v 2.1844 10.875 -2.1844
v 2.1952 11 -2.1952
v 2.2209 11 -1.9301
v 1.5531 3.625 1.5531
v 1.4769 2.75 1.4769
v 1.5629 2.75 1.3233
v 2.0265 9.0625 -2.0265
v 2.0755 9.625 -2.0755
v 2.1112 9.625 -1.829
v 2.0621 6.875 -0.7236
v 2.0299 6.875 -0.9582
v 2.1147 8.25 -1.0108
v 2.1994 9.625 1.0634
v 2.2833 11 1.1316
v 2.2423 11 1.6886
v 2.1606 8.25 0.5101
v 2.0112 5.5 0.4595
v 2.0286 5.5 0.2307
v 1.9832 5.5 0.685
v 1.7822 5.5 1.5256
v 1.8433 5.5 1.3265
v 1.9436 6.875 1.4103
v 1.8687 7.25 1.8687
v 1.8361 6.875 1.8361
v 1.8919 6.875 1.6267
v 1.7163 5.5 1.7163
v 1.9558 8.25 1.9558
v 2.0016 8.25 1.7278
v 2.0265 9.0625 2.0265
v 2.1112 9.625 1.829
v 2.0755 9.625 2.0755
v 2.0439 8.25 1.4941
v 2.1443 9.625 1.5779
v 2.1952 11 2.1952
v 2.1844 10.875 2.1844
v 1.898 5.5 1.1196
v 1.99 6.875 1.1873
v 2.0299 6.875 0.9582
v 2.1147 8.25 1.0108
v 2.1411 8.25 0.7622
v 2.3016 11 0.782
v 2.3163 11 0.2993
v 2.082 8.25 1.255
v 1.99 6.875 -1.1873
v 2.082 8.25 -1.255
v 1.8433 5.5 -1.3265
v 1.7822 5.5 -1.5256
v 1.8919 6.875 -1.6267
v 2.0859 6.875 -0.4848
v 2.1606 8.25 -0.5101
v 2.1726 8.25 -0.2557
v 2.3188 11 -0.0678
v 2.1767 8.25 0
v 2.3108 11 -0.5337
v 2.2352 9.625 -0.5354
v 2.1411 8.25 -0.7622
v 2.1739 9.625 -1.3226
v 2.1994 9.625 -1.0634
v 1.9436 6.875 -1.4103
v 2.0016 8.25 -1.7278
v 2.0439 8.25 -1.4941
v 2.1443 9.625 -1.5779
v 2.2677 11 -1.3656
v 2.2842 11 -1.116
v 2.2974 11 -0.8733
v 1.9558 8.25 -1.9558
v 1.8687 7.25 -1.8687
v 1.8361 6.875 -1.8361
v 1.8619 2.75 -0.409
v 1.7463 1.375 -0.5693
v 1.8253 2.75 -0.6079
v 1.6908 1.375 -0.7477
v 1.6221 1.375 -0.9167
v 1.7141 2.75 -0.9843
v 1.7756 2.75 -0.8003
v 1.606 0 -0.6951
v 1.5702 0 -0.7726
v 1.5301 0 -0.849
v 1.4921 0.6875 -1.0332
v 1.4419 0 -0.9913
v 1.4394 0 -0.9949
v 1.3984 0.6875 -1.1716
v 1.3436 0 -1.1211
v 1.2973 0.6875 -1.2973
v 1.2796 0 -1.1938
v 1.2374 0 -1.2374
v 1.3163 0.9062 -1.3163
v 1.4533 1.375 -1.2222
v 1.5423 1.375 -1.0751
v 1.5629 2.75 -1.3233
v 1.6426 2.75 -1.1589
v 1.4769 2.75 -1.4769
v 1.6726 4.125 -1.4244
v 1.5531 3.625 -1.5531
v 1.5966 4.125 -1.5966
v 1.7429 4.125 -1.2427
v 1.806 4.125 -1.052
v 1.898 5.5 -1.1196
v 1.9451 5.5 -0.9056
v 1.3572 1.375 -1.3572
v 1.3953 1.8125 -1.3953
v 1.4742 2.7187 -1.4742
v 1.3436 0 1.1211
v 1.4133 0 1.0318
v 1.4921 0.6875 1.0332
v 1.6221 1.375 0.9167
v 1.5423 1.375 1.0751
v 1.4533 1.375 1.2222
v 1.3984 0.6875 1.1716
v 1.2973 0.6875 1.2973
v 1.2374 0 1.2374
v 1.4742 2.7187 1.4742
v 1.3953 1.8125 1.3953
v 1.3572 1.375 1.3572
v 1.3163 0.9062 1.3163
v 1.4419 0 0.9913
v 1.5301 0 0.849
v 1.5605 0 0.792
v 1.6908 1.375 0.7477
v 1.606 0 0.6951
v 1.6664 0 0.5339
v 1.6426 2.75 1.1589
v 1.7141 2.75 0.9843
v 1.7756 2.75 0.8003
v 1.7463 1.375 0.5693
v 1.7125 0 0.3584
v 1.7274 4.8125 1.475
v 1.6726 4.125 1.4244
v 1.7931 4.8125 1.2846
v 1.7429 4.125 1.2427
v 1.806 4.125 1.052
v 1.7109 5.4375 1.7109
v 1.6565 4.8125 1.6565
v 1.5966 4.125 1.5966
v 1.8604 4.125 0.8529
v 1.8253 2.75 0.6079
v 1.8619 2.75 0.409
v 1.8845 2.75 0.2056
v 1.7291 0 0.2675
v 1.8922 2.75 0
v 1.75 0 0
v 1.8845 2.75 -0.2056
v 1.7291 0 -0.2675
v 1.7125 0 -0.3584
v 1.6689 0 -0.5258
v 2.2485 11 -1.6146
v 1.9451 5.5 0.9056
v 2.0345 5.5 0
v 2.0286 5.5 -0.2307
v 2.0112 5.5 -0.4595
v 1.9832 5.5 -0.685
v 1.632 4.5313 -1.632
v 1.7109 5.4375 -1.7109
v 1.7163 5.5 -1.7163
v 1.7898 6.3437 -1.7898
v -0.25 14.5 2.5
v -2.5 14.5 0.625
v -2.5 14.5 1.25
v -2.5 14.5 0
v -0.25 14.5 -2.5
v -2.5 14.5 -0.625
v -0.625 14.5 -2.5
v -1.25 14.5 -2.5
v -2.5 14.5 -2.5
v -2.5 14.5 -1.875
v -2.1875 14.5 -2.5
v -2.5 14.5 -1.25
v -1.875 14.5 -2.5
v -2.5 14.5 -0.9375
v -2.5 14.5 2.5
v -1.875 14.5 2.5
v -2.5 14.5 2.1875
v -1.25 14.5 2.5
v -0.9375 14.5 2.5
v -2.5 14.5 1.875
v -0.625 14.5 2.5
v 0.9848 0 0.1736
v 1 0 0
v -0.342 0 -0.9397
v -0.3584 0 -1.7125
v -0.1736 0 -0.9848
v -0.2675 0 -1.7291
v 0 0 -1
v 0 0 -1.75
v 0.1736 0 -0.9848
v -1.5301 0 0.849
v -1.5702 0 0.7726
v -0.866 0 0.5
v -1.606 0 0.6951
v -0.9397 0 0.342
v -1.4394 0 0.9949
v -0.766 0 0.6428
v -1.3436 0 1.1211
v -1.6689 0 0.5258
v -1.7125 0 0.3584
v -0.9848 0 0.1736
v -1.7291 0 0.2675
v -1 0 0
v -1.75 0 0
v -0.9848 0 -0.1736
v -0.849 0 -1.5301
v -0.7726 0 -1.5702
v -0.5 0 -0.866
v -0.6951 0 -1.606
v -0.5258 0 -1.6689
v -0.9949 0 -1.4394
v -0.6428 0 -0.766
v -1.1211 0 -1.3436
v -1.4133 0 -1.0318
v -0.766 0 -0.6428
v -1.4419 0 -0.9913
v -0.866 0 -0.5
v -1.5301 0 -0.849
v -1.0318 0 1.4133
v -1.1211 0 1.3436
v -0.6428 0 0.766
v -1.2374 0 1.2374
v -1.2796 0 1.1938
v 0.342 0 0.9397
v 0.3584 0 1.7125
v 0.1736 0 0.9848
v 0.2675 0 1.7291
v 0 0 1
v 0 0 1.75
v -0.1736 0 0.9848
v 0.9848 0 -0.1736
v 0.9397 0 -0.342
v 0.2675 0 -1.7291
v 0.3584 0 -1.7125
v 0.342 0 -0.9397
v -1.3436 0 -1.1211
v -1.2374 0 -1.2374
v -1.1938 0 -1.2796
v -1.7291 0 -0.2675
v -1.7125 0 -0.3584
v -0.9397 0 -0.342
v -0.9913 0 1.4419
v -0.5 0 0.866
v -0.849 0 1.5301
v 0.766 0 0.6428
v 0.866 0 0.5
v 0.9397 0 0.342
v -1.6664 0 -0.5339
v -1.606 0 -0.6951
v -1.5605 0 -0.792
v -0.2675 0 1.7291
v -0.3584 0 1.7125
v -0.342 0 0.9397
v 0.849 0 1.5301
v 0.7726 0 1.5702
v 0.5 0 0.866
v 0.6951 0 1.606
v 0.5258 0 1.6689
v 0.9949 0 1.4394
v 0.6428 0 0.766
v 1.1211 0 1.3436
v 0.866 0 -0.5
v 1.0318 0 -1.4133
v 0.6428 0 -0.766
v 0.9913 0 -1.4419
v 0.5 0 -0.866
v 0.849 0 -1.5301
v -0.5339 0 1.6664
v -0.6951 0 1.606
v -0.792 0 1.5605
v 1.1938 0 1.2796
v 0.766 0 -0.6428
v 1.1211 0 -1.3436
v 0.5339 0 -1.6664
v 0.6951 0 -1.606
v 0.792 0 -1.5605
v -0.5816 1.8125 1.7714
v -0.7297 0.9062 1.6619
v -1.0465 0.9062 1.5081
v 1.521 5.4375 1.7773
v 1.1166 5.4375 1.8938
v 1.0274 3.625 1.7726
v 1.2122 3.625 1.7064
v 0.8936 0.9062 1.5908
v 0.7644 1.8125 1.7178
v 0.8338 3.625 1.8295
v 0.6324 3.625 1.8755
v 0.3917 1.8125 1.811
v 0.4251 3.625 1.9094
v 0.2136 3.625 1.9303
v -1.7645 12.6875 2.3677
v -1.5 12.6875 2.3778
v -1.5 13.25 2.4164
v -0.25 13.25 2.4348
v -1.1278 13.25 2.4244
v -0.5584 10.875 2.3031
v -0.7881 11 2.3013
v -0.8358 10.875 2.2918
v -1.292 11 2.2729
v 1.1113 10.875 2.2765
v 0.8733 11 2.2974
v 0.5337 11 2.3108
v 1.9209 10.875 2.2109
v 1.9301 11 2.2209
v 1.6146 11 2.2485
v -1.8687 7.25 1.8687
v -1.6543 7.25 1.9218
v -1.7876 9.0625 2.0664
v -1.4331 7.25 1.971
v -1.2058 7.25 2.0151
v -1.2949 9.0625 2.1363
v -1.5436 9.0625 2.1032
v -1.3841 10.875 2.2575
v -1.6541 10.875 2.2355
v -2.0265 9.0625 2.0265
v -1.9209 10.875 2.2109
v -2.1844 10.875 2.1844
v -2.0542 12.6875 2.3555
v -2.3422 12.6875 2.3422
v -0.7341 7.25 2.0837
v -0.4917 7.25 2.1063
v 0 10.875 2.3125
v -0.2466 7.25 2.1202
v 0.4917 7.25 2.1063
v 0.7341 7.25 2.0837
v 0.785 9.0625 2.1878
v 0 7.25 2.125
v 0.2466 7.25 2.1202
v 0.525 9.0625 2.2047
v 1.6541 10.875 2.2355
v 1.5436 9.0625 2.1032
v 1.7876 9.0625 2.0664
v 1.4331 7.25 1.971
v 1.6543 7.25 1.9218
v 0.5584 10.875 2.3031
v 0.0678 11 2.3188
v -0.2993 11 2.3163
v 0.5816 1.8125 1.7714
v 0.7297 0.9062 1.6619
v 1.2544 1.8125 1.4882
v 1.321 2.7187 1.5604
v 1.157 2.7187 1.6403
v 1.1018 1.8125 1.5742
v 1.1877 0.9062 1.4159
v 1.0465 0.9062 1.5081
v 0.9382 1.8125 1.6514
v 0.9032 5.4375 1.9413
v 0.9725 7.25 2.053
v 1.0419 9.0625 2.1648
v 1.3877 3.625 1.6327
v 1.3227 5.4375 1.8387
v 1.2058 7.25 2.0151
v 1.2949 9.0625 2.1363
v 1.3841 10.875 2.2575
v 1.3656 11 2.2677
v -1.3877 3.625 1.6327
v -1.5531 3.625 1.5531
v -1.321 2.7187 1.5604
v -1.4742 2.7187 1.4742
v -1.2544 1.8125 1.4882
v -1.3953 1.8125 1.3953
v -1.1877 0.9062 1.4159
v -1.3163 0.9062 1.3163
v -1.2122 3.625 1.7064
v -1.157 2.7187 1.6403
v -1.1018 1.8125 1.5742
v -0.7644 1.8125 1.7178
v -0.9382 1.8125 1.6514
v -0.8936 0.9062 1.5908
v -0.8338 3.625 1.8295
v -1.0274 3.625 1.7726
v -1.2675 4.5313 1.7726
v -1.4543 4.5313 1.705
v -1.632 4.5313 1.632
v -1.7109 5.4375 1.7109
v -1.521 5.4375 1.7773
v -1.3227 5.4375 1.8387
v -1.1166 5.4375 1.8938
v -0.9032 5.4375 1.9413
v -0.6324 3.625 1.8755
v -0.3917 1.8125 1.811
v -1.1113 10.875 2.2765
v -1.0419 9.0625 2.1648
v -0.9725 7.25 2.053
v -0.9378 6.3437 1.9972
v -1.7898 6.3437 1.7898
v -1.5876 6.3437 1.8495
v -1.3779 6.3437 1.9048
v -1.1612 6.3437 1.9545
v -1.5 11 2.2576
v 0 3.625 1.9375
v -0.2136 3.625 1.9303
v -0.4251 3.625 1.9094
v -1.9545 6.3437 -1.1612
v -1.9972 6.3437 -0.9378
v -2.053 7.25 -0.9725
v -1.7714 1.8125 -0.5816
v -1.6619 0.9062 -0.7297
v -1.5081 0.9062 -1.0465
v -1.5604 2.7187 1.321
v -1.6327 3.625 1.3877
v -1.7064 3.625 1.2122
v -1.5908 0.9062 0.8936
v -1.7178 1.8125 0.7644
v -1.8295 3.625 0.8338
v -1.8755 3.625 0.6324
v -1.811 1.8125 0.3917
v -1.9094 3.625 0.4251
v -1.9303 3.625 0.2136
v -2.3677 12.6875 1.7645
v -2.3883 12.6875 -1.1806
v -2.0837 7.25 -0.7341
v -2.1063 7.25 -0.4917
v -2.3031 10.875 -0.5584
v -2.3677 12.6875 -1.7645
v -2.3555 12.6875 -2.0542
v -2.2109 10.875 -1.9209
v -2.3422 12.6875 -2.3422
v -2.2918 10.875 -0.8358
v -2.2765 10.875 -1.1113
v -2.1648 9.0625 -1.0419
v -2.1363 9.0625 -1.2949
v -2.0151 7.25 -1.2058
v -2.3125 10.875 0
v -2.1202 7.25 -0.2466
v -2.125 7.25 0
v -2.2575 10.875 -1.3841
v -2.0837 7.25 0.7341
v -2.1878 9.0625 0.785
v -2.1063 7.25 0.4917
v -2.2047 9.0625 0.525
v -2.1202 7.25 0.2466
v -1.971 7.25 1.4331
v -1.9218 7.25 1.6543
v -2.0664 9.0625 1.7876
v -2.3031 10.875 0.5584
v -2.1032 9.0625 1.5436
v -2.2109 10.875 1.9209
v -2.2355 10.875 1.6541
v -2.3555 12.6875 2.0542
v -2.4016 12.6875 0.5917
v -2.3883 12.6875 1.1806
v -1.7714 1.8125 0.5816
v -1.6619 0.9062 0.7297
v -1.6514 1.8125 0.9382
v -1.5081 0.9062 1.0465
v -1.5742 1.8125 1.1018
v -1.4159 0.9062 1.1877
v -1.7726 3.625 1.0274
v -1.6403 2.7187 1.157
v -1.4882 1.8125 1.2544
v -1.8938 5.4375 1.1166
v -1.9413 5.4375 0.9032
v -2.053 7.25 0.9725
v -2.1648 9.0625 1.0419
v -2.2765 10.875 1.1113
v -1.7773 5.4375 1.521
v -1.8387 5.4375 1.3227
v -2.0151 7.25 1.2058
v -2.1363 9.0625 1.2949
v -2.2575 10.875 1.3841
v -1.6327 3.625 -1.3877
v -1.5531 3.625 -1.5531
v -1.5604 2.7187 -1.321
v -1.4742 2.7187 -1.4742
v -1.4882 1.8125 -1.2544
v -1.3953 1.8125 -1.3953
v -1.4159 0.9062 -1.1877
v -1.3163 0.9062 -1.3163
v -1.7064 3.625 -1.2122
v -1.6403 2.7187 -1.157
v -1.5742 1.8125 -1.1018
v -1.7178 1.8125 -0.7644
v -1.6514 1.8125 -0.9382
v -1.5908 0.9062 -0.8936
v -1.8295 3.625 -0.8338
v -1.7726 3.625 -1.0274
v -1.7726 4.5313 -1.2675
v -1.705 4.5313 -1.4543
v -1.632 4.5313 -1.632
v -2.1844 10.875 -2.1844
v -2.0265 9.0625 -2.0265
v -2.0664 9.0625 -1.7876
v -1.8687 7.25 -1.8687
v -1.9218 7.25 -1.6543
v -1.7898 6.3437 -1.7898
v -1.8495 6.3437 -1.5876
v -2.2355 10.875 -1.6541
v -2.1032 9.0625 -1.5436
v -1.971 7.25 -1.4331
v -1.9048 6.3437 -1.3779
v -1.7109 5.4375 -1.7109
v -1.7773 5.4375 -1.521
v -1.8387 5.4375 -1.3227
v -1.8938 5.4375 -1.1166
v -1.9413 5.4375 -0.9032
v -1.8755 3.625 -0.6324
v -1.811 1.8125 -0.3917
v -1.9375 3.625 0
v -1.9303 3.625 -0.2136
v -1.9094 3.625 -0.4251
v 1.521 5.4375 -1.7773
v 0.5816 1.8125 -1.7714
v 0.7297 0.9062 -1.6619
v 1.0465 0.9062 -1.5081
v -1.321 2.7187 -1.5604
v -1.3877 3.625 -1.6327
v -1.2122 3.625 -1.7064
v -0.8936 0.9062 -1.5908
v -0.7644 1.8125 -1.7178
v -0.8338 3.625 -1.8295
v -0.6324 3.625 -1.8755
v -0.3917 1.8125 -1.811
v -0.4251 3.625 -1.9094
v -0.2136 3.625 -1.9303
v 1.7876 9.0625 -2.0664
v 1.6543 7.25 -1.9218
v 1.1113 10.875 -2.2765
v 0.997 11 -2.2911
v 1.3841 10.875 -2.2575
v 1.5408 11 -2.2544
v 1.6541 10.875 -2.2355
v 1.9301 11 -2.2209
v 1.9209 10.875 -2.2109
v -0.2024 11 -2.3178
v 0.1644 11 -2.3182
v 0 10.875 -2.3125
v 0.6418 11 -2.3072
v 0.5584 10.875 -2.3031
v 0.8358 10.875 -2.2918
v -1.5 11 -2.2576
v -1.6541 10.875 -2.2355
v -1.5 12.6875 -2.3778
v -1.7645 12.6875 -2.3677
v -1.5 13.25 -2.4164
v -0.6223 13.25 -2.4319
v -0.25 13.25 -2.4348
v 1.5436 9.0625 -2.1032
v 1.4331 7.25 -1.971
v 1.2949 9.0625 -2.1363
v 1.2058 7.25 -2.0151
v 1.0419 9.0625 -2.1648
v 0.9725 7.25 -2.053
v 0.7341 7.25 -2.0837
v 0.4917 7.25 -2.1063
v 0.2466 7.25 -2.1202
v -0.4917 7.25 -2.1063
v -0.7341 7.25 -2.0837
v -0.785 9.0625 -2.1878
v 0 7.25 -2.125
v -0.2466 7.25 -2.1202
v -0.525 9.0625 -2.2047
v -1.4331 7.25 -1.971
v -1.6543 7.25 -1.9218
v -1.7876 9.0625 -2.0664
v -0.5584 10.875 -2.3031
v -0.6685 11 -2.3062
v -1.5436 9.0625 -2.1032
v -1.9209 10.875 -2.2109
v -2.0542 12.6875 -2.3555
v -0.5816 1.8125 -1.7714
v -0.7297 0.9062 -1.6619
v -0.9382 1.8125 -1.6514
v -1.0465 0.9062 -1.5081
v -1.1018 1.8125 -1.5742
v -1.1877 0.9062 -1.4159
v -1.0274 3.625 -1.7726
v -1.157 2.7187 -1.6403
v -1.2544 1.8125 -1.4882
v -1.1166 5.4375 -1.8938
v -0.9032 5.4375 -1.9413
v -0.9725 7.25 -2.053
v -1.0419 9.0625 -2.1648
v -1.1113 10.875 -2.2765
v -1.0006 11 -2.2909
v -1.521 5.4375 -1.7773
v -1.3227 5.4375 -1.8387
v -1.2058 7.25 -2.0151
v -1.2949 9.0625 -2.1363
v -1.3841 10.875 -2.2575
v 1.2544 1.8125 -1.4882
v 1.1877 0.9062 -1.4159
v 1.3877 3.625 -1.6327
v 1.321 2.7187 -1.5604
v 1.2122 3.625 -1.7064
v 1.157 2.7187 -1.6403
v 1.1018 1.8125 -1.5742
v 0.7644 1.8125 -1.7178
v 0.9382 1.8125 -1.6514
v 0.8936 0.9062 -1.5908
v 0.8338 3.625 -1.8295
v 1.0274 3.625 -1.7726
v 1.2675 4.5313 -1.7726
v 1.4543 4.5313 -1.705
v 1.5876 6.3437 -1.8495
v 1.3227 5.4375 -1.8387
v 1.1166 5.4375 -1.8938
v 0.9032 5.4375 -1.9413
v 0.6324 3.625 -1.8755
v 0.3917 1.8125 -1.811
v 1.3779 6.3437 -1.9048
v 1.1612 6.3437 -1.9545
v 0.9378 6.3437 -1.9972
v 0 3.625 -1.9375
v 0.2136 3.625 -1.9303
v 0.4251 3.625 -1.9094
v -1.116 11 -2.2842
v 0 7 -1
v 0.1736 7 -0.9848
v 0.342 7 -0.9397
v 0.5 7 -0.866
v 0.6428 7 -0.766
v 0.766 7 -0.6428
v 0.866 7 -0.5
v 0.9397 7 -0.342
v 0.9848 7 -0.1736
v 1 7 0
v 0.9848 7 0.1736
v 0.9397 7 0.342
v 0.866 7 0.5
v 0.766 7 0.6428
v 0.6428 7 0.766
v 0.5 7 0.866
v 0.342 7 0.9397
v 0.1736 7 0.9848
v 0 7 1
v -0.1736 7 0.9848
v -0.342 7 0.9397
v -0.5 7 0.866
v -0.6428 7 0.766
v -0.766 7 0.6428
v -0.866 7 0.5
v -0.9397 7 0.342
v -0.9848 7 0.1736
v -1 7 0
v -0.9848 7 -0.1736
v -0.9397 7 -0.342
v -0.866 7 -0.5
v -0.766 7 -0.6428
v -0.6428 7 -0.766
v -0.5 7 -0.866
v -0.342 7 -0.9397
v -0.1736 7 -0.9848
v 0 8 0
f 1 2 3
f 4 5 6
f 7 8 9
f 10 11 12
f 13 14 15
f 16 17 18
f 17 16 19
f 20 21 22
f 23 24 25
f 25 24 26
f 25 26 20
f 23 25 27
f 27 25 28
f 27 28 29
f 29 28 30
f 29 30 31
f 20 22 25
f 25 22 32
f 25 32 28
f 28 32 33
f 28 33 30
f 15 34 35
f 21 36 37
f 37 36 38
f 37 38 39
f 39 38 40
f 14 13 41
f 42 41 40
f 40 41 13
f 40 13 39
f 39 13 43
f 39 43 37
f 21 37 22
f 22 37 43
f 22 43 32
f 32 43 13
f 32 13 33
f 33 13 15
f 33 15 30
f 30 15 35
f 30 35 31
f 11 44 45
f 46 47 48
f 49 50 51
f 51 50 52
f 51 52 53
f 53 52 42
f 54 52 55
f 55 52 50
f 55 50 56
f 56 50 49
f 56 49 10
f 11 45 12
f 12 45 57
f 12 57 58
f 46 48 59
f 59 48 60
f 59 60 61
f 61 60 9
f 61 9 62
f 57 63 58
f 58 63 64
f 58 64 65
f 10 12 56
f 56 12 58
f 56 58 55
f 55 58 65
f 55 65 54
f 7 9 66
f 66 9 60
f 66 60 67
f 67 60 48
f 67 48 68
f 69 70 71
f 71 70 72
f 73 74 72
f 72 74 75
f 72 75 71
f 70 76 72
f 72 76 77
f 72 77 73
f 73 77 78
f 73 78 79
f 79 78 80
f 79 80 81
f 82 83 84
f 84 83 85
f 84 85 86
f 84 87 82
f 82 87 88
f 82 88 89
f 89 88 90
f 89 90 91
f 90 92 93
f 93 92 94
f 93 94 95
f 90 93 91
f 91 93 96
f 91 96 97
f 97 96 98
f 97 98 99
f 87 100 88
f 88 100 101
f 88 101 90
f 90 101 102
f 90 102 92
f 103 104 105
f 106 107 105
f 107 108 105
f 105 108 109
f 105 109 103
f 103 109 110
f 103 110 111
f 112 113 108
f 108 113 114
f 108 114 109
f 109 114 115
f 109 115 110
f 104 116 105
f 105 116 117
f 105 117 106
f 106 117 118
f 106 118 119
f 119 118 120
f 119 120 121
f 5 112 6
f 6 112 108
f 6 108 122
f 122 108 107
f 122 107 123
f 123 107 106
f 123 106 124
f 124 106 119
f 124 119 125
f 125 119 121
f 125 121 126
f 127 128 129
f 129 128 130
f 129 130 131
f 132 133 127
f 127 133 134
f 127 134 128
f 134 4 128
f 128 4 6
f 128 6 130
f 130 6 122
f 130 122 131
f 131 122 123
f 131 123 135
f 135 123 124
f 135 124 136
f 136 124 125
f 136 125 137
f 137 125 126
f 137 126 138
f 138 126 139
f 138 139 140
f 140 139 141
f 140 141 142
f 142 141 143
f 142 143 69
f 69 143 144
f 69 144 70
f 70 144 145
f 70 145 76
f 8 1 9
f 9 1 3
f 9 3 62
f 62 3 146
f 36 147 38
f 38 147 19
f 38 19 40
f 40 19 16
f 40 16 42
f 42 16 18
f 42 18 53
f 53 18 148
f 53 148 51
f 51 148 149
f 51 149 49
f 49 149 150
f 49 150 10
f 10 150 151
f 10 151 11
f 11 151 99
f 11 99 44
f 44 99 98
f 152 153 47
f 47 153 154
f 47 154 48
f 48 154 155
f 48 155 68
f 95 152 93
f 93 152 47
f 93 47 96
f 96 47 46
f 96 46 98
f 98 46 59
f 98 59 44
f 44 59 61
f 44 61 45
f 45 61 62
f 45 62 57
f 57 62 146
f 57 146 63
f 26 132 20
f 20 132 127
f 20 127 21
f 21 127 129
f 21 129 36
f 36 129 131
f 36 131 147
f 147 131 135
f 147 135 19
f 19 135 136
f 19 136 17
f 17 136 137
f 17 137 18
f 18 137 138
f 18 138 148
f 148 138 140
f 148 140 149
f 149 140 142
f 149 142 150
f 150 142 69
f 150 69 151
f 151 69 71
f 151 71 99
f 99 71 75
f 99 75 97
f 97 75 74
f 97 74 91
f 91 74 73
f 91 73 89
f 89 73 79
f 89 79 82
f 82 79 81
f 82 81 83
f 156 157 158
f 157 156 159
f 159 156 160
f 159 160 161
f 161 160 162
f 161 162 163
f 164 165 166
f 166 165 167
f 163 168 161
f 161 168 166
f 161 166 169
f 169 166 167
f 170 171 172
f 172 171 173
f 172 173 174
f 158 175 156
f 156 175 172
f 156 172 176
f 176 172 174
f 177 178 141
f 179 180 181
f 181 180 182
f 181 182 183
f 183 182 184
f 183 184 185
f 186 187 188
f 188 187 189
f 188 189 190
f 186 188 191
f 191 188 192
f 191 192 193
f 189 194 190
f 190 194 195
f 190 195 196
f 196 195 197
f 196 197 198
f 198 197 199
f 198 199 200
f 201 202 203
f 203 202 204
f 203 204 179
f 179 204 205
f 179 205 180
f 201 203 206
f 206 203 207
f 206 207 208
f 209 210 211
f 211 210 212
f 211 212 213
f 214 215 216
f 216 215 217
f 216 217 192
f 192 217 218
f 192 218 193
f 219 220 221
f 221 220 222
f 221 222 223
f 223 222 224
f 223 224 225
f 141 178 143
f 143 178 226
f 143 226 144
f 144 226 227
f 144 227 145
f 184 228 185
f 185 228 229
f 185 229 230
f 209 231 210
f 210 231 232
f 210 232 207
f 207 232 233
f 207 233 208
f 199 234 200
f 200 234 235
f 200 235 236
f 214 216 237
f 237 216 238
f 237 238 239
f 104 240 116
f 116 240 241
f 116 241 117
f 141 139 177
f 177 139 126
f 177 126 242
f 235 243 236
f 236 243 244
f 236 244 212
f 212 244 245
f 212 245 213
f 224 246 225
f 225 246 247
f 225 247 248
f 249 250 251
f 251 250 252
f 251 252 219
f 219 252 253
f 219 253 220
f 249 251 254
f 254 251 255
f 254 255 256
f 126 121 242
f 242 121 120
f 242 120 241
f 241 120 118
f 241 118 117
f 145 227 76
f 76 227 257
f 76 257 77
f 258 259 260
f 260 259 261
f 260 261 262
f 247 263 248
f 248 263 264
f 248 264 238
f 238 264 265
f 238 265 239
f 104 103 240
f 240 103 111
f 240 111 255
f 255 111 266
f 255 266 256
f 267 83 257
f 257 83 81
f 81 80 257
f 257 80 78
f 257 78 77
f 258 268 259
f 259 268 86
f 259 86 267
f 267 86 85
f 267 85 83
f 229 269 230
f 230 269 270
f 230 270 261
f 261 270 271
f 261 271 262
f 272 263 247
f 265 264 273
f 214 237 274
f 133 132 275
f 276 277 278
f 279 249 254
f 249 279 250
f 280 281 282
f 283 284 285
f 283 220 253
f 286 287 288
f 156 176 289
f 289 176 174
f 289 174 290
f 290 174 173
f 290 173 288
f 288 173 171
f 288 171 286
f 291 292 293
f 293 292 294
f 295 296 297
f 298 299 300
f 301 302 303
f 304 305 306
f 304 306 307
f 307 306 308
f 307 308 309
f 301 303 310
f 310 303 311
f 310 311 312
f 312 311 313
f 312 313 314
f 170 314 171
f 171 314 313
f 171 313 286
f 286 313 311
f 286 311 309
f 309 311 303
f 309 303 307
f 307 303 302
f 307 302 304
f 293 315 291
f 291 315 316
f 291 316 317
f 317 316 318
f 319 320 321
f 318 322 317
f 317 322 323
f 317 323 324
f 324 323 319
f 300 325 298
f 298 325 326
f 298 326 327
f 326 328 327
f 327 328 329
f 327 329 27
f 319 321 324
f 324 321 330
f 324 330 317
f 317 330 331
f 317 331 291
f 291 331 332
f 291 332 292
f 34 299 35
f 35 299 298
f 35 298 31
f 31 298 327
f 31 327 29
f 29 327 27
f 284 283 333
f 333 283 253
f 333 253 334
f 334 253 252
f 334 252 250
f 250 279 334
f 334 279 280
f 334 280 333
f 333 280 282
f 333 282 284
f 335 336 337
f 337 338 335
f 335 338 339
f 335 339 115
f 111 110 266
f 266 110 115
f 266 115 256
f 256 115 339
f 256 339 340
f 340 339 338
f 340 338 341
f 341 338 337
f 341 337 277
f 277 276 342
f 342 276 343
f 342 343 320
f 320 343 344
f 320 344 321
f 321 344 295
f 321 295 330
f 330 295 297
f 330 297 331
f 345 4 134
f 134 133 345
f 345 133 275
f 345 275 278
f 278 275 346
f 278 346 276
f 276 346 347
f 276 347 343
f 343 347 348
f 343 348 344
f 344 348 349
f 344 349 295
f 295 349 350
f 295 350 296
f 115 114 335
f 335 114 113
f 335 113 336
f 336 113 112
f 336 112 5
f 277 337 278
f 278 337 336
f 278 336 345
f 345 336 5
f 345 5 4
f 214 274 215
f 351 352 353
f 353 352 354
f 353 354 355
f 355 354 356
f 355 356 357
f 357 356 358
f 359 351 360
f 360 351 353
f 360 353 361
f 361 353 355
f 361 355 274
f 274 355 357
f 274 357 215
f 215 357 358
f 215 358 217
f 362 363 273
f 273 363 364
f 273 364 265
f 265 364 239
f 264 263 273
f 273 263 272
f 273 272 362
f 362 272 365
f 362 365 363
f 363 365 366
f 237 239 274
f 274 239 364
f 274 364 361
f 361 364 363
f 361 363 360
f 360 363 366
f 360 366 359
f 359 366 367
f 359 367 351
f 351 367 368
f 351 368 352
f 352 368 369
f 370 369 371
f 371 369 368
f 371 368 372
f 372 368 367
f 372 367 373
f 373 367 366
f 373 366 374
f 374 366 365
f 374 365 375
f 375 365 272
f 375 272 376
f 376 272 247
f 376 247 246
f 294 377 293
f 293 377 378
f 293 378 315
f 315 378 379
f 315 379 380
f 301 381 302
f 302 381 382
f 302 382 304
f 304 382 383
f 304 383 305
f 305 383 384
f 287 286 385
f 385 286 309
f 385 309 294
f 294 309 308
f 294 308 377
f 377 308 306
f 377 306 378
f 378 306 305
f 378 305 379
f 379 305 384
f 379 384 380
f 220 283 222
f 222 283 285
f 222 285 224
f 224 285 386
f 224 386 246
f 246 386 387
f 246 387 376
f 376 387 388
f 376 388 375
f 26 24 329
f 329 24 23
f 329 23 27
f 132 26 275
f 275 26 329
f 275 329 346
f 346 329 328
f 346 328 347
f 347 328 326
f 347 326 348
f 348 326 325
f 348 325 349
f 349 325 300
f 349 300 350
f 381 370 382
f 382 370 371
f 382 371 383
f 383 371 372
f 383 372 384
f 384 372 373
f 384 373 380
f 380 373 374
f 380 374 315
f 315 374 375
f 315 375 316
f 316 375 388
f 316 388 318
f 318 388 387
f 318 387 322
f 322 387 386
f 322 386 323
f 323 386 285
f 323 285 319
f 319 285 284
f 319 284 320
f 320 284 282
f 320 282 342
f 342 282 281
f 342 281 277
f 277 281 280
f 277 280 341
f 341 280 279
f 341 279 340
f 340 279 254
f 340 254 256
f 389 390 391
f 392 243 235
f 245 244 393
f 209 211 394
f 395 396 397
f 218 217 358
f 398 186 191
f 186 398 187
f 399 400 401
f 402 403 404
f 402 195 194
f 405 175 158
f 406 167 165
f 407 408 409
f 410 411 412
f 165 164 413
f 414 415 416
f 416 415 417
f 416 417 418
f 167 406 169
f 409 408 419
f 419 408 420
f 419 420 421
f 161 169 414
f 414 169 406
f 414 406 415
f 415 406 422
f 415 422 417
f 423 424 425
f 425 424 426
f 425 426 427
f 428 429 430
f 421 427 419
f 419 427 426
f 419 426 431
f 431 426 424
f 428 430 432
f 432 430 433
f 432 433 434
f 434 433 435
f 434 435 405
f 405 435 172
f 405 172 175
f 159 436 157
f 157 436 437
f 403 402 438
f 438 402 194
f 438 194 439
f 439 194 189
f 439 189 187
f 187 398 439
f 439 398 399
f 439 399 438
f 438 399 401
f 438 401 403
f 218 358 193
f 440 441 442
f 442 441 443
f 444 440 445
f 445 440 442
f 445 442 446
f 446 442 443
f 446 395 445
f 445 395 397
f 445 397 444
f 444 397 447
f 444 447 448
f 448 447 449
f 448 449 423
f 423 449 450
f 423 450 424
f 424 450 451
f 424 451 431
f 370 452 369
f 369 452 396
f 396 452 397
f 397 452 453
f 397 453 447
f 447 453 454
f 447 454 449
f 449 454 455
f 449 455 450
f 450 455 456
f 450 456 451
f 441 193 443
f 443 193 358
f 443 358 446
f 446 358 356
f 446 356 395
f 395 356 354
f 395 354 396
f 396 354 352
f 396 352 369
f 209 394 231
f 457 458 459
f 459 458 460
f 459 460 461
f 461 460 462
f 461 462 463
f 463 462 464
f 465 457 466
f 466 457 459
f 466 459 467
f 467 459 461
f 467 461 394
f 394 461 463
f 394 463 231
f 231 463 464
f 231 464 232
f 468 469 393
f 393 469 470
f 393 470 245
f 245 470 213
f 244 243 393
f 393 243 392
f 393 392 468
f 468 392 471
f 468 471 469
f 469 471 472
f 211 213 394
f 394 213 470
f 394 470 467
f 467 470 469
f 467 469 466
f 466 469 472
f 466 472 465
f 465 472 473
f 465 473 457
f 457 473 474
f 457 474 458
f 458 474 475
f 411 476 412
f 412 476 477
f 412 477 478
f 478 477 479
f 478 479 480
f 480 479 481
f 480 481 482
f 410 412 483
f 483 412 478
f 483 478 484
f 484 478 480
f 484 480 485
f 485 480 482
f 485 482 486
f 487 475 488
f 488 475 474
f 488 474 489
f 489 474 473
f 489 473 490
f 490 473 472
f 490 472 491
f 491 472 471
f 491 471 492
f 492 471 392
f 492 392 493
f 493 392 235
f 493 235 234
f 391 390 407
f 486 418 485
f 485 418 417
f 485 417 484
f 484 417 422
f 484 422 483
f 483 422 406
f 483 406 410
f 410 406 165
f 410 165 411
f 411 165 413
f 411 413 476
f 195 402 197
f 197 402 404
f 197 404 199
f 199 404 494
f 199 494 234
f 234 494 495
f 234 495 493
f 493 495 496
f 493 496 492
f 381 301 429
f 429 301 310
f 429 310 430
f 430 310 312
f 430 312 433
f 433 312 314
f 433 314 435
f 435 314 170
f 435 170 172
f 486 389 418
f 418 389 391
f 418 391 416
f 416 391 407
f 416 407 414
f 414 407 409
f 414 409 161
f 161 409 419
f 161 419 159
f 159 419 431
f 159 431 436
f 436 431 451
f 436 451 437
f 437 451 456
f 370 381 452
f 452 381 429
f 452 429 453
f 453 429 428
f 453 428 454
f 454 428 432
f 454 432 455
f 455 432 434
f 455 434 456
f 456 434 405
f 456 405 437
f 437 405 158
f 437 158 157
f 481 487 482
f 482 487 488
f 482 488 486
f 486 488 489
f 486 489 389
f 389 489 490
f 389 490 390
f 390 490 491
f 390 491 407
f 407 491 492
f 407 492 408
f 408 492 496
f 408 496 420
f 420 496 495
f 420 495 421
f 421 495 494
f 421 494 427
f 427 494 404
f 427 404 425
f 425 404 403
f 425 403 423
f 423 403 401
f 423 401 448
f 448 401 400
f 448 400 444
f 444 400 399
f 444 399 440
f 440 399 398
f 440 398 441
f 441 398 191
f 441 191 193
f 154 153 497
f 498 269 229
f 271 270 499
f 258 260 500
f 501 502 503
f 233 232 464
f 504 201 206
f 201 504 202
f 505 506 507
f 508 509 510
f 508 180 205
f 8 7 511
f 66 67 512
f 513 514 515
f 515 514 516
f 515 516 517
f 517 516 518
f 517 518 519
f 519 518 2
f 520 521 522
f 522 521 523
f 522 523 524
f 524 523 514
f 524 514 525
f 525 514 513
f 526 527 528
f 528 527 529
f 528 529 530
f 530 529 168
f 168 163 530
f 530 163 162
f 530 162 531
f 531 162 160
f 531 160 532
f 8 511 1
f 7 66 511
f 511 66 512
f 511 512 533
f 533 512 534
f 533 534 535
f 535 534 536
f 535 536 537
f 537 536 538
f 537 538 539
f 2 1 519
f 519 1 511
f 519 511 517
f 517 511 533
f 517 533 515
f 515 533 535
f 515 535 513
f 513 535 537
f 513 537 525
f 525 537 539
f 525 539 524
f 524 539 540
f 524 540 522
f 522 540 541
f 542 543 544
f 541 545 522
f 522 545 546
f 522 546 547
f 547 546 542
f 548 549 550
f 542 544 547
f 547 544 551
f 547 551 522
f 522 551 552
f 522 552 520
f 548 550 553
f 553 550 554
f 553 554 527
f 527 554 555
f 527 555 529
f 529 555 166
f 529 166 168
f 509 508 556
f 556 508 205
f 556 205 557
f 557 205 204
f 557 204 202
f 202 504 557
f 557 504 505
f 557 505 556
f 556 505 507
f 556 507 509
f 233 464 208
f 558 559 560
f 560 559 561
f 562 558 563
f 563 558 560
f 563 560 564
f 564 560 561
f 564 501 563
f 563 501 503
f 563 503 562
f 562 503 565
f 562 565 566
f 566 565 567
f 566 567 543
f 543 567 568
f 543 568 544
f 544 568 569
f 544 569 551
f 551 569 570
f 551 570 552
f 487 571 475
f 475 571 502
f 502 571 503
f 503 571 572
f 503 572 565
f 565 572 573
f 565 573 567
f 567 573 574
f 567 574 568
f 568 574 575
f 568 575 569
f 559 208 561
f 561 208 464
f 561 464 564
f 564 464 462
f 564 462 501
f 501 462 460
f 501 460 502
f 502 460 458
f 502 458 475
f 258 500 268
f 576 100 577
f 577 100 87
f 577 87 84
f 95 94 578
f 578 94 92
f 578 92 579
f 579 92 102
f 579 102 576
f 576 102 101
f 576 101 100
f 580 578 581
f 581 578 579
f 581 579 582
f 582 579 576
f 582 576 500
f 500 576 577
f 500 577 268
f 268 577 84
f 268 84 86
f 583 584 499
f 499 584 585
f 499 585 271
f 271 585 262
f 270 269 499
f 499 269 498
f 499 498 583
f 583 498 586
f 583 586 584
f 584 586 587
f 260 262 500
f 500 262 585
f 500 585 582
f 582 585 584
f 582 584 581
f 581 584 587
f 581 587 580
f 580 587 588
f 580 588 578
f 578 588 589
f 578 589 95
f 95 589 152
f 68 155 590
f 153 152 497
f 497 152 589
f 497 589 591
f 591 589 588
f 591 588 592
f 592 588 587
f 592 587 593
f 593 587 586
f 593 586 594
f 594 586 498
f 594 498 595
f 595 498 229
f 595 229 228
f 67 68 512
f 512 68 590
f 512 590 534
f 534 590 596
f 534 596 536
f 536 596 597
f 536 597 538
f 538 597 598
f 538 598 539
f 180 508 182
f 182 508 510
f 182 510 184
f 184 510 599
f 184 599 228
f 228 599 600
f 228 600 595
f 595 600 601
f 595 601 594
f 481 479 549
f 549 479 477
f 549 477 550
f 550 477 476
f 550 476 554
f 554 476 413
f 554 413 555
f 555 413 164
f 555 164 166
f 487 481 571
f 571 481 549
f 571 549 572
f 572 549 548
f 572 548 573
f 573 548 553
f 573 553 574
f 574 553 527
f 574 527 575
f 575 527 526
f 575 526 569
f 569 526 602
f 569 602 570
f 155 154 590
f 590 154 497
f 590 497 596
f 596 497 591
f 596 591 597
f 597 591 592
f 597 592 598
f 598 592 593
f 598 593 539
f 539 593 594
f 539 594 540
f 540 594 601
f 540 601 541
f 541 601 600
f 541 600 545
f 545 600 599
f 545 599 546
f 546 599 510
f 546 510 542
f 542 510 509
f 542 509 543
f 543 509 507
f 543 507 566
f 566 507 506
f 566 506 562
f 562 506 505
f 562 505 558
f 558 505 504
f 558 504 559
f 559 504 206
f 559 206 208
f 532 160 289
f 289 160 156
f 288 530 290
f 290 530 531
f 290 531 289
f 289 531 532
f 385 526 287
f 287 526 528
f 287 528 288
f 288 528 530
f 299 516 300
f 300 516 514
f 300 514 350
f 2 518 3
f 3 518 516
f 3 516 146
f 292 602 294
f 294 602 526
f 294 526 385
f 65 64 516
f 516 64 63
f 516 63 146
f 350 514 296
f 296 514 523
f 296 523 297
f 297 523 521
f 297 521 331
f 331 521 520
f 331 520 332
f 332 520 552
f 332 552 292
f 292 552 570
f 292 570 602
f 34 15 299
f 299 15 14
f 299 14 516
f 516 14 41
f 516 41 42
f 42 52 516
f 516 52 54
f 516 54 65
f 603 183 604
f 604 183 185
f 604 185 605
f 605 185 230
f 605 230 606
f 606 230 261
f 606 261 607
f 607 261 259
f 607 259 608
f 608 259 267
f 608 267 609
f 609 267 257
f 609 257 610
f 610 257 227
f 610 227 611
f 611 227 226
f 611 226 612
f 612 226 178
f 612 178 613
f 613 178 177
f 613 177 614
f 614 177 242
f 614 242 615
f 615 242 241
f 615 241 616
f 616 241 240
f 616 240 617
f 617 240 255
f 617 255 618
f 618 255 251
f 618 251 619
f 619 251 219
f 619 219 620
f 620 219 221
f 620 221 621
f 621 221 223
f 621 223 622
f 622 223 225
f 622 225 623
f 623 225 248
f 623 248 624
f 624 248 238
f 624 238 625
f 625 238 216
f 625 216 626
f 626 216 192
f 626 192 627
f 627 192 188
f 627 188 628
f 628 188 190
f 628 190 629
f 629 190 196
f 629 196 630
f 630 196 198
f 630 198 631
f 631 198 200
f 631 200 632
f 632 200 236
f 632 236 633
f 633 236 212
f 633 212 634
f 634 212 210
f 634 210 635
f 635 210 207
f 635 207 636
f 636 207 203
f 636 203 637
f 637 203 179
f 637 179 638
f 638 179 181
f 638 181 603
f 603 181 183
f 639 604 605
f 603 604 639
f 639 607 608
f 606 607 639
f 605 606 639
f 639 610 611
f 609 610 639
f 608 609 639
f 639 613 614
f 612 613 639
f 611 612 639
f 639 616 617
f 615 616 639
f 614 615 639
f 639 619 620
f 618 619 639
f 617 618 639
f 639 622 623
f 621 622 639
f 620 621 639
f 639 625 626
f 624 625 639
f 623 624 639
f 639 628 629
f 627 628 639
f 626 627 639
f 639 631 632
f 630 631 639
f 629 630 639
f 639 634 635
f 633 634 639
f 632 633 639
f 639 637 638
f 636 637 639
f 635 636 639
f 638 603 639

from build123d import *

# Parameters (mm, degrees)
CUT_EXTRUDE3_DEPTH      = 10
CUT_EXTRUDE3_DEPTH_BACK = 10
SKETCH3_R               = 1
CUT_EXTRUDE2_DEPTH      = 8
CHAMFER1_SIZE           = 1


with BuildPart() as part:
    # Sketch4 for Loft1 → Loft1 section 0
    with BuildSketch(Plane(origin=(0, 0, 0), x_dir=(1, 0, 0), z_dir=(0, 1, 0))):
        with BuildLine():
            # circular arc as an exact rational Bezier (weights 1, cos(half-angle), 1)
            Bezier((-1.237436867, -1.237436867), (0, -2.474873734), (1.237436867, -1.237436867), weights=[1, 0.707106781, 1])
            Bezier((1.237436867, -1.237436867), (2.474873734, 0), (1.237436867, 1.237436867), weights=[1, 0.707106781, 1])
            Bezier((1.237436867, 1.237436867), (0, 2.474873734), (-1.237436867, 1.237436867), weights=[1, 0.707106781, 1])
            Bezier((-1.237436867, 1.237436867), (-2.474873734, 0), (-1.237436867, -1.237436867), weights=[1, 0.707106781, 1])
        make_face()
    # Sketch1 → Loft1 section 1
    with BuildSketch(Plane(origin=(0, 14.5, 0), x_dir=(1, 0, 0), z_dir=(0, 1, 0))):
        with BuildLine():
            Line((-2.5, -2.5), (2.5, -2.5))
            Line((2.5, -2.5), (2.5, 2.5))
            Line((2.5, 2.5), (-2.5, 2.5))
            Line((-2.5, 2.5), (-2.5, -2.5))
        make_face()
    loft()

    # Sketch8 → Cut-Extrude3 (cut, two sides: drawn at the far end of the back side and taken through both)
    with BuildSketch(Plane.XY.offset(-CUT_EXTRUDE3_DEPTH_BACK)):
        Polygon((-0.25, 13.25), (-1.5, 13.25), (-1.5, 11), (2.195243382, 11), (3.151773284, 11), (3.151773284, 14.772897757), (-0.25, 14.772897757), align=None)
    extrude(amount=CUT_EXTRUDE3_DEPTH + CUT_EXTRUDE3_DEPTH_BACK, mode=Mode.SUBTRACT)

    # Sketch3 → Cut-Extrude2 (cut)
    with BuildSketch(Plane.XZ):
        Circle(SKETCH3_R)
    extrude(amount=-CUT_EXTRUDE2_DEPTH, mode=Mode.SUBTRACT)

    # Chamfer1
    chamfer1_edges = [part.edges().sort_by_distance(p)[0] for p in [
        (-1, 8, 0),
    ]]
    chamfer(chamfer1_edges, length=CHAMFER1_SIZE)


solid = part.part
